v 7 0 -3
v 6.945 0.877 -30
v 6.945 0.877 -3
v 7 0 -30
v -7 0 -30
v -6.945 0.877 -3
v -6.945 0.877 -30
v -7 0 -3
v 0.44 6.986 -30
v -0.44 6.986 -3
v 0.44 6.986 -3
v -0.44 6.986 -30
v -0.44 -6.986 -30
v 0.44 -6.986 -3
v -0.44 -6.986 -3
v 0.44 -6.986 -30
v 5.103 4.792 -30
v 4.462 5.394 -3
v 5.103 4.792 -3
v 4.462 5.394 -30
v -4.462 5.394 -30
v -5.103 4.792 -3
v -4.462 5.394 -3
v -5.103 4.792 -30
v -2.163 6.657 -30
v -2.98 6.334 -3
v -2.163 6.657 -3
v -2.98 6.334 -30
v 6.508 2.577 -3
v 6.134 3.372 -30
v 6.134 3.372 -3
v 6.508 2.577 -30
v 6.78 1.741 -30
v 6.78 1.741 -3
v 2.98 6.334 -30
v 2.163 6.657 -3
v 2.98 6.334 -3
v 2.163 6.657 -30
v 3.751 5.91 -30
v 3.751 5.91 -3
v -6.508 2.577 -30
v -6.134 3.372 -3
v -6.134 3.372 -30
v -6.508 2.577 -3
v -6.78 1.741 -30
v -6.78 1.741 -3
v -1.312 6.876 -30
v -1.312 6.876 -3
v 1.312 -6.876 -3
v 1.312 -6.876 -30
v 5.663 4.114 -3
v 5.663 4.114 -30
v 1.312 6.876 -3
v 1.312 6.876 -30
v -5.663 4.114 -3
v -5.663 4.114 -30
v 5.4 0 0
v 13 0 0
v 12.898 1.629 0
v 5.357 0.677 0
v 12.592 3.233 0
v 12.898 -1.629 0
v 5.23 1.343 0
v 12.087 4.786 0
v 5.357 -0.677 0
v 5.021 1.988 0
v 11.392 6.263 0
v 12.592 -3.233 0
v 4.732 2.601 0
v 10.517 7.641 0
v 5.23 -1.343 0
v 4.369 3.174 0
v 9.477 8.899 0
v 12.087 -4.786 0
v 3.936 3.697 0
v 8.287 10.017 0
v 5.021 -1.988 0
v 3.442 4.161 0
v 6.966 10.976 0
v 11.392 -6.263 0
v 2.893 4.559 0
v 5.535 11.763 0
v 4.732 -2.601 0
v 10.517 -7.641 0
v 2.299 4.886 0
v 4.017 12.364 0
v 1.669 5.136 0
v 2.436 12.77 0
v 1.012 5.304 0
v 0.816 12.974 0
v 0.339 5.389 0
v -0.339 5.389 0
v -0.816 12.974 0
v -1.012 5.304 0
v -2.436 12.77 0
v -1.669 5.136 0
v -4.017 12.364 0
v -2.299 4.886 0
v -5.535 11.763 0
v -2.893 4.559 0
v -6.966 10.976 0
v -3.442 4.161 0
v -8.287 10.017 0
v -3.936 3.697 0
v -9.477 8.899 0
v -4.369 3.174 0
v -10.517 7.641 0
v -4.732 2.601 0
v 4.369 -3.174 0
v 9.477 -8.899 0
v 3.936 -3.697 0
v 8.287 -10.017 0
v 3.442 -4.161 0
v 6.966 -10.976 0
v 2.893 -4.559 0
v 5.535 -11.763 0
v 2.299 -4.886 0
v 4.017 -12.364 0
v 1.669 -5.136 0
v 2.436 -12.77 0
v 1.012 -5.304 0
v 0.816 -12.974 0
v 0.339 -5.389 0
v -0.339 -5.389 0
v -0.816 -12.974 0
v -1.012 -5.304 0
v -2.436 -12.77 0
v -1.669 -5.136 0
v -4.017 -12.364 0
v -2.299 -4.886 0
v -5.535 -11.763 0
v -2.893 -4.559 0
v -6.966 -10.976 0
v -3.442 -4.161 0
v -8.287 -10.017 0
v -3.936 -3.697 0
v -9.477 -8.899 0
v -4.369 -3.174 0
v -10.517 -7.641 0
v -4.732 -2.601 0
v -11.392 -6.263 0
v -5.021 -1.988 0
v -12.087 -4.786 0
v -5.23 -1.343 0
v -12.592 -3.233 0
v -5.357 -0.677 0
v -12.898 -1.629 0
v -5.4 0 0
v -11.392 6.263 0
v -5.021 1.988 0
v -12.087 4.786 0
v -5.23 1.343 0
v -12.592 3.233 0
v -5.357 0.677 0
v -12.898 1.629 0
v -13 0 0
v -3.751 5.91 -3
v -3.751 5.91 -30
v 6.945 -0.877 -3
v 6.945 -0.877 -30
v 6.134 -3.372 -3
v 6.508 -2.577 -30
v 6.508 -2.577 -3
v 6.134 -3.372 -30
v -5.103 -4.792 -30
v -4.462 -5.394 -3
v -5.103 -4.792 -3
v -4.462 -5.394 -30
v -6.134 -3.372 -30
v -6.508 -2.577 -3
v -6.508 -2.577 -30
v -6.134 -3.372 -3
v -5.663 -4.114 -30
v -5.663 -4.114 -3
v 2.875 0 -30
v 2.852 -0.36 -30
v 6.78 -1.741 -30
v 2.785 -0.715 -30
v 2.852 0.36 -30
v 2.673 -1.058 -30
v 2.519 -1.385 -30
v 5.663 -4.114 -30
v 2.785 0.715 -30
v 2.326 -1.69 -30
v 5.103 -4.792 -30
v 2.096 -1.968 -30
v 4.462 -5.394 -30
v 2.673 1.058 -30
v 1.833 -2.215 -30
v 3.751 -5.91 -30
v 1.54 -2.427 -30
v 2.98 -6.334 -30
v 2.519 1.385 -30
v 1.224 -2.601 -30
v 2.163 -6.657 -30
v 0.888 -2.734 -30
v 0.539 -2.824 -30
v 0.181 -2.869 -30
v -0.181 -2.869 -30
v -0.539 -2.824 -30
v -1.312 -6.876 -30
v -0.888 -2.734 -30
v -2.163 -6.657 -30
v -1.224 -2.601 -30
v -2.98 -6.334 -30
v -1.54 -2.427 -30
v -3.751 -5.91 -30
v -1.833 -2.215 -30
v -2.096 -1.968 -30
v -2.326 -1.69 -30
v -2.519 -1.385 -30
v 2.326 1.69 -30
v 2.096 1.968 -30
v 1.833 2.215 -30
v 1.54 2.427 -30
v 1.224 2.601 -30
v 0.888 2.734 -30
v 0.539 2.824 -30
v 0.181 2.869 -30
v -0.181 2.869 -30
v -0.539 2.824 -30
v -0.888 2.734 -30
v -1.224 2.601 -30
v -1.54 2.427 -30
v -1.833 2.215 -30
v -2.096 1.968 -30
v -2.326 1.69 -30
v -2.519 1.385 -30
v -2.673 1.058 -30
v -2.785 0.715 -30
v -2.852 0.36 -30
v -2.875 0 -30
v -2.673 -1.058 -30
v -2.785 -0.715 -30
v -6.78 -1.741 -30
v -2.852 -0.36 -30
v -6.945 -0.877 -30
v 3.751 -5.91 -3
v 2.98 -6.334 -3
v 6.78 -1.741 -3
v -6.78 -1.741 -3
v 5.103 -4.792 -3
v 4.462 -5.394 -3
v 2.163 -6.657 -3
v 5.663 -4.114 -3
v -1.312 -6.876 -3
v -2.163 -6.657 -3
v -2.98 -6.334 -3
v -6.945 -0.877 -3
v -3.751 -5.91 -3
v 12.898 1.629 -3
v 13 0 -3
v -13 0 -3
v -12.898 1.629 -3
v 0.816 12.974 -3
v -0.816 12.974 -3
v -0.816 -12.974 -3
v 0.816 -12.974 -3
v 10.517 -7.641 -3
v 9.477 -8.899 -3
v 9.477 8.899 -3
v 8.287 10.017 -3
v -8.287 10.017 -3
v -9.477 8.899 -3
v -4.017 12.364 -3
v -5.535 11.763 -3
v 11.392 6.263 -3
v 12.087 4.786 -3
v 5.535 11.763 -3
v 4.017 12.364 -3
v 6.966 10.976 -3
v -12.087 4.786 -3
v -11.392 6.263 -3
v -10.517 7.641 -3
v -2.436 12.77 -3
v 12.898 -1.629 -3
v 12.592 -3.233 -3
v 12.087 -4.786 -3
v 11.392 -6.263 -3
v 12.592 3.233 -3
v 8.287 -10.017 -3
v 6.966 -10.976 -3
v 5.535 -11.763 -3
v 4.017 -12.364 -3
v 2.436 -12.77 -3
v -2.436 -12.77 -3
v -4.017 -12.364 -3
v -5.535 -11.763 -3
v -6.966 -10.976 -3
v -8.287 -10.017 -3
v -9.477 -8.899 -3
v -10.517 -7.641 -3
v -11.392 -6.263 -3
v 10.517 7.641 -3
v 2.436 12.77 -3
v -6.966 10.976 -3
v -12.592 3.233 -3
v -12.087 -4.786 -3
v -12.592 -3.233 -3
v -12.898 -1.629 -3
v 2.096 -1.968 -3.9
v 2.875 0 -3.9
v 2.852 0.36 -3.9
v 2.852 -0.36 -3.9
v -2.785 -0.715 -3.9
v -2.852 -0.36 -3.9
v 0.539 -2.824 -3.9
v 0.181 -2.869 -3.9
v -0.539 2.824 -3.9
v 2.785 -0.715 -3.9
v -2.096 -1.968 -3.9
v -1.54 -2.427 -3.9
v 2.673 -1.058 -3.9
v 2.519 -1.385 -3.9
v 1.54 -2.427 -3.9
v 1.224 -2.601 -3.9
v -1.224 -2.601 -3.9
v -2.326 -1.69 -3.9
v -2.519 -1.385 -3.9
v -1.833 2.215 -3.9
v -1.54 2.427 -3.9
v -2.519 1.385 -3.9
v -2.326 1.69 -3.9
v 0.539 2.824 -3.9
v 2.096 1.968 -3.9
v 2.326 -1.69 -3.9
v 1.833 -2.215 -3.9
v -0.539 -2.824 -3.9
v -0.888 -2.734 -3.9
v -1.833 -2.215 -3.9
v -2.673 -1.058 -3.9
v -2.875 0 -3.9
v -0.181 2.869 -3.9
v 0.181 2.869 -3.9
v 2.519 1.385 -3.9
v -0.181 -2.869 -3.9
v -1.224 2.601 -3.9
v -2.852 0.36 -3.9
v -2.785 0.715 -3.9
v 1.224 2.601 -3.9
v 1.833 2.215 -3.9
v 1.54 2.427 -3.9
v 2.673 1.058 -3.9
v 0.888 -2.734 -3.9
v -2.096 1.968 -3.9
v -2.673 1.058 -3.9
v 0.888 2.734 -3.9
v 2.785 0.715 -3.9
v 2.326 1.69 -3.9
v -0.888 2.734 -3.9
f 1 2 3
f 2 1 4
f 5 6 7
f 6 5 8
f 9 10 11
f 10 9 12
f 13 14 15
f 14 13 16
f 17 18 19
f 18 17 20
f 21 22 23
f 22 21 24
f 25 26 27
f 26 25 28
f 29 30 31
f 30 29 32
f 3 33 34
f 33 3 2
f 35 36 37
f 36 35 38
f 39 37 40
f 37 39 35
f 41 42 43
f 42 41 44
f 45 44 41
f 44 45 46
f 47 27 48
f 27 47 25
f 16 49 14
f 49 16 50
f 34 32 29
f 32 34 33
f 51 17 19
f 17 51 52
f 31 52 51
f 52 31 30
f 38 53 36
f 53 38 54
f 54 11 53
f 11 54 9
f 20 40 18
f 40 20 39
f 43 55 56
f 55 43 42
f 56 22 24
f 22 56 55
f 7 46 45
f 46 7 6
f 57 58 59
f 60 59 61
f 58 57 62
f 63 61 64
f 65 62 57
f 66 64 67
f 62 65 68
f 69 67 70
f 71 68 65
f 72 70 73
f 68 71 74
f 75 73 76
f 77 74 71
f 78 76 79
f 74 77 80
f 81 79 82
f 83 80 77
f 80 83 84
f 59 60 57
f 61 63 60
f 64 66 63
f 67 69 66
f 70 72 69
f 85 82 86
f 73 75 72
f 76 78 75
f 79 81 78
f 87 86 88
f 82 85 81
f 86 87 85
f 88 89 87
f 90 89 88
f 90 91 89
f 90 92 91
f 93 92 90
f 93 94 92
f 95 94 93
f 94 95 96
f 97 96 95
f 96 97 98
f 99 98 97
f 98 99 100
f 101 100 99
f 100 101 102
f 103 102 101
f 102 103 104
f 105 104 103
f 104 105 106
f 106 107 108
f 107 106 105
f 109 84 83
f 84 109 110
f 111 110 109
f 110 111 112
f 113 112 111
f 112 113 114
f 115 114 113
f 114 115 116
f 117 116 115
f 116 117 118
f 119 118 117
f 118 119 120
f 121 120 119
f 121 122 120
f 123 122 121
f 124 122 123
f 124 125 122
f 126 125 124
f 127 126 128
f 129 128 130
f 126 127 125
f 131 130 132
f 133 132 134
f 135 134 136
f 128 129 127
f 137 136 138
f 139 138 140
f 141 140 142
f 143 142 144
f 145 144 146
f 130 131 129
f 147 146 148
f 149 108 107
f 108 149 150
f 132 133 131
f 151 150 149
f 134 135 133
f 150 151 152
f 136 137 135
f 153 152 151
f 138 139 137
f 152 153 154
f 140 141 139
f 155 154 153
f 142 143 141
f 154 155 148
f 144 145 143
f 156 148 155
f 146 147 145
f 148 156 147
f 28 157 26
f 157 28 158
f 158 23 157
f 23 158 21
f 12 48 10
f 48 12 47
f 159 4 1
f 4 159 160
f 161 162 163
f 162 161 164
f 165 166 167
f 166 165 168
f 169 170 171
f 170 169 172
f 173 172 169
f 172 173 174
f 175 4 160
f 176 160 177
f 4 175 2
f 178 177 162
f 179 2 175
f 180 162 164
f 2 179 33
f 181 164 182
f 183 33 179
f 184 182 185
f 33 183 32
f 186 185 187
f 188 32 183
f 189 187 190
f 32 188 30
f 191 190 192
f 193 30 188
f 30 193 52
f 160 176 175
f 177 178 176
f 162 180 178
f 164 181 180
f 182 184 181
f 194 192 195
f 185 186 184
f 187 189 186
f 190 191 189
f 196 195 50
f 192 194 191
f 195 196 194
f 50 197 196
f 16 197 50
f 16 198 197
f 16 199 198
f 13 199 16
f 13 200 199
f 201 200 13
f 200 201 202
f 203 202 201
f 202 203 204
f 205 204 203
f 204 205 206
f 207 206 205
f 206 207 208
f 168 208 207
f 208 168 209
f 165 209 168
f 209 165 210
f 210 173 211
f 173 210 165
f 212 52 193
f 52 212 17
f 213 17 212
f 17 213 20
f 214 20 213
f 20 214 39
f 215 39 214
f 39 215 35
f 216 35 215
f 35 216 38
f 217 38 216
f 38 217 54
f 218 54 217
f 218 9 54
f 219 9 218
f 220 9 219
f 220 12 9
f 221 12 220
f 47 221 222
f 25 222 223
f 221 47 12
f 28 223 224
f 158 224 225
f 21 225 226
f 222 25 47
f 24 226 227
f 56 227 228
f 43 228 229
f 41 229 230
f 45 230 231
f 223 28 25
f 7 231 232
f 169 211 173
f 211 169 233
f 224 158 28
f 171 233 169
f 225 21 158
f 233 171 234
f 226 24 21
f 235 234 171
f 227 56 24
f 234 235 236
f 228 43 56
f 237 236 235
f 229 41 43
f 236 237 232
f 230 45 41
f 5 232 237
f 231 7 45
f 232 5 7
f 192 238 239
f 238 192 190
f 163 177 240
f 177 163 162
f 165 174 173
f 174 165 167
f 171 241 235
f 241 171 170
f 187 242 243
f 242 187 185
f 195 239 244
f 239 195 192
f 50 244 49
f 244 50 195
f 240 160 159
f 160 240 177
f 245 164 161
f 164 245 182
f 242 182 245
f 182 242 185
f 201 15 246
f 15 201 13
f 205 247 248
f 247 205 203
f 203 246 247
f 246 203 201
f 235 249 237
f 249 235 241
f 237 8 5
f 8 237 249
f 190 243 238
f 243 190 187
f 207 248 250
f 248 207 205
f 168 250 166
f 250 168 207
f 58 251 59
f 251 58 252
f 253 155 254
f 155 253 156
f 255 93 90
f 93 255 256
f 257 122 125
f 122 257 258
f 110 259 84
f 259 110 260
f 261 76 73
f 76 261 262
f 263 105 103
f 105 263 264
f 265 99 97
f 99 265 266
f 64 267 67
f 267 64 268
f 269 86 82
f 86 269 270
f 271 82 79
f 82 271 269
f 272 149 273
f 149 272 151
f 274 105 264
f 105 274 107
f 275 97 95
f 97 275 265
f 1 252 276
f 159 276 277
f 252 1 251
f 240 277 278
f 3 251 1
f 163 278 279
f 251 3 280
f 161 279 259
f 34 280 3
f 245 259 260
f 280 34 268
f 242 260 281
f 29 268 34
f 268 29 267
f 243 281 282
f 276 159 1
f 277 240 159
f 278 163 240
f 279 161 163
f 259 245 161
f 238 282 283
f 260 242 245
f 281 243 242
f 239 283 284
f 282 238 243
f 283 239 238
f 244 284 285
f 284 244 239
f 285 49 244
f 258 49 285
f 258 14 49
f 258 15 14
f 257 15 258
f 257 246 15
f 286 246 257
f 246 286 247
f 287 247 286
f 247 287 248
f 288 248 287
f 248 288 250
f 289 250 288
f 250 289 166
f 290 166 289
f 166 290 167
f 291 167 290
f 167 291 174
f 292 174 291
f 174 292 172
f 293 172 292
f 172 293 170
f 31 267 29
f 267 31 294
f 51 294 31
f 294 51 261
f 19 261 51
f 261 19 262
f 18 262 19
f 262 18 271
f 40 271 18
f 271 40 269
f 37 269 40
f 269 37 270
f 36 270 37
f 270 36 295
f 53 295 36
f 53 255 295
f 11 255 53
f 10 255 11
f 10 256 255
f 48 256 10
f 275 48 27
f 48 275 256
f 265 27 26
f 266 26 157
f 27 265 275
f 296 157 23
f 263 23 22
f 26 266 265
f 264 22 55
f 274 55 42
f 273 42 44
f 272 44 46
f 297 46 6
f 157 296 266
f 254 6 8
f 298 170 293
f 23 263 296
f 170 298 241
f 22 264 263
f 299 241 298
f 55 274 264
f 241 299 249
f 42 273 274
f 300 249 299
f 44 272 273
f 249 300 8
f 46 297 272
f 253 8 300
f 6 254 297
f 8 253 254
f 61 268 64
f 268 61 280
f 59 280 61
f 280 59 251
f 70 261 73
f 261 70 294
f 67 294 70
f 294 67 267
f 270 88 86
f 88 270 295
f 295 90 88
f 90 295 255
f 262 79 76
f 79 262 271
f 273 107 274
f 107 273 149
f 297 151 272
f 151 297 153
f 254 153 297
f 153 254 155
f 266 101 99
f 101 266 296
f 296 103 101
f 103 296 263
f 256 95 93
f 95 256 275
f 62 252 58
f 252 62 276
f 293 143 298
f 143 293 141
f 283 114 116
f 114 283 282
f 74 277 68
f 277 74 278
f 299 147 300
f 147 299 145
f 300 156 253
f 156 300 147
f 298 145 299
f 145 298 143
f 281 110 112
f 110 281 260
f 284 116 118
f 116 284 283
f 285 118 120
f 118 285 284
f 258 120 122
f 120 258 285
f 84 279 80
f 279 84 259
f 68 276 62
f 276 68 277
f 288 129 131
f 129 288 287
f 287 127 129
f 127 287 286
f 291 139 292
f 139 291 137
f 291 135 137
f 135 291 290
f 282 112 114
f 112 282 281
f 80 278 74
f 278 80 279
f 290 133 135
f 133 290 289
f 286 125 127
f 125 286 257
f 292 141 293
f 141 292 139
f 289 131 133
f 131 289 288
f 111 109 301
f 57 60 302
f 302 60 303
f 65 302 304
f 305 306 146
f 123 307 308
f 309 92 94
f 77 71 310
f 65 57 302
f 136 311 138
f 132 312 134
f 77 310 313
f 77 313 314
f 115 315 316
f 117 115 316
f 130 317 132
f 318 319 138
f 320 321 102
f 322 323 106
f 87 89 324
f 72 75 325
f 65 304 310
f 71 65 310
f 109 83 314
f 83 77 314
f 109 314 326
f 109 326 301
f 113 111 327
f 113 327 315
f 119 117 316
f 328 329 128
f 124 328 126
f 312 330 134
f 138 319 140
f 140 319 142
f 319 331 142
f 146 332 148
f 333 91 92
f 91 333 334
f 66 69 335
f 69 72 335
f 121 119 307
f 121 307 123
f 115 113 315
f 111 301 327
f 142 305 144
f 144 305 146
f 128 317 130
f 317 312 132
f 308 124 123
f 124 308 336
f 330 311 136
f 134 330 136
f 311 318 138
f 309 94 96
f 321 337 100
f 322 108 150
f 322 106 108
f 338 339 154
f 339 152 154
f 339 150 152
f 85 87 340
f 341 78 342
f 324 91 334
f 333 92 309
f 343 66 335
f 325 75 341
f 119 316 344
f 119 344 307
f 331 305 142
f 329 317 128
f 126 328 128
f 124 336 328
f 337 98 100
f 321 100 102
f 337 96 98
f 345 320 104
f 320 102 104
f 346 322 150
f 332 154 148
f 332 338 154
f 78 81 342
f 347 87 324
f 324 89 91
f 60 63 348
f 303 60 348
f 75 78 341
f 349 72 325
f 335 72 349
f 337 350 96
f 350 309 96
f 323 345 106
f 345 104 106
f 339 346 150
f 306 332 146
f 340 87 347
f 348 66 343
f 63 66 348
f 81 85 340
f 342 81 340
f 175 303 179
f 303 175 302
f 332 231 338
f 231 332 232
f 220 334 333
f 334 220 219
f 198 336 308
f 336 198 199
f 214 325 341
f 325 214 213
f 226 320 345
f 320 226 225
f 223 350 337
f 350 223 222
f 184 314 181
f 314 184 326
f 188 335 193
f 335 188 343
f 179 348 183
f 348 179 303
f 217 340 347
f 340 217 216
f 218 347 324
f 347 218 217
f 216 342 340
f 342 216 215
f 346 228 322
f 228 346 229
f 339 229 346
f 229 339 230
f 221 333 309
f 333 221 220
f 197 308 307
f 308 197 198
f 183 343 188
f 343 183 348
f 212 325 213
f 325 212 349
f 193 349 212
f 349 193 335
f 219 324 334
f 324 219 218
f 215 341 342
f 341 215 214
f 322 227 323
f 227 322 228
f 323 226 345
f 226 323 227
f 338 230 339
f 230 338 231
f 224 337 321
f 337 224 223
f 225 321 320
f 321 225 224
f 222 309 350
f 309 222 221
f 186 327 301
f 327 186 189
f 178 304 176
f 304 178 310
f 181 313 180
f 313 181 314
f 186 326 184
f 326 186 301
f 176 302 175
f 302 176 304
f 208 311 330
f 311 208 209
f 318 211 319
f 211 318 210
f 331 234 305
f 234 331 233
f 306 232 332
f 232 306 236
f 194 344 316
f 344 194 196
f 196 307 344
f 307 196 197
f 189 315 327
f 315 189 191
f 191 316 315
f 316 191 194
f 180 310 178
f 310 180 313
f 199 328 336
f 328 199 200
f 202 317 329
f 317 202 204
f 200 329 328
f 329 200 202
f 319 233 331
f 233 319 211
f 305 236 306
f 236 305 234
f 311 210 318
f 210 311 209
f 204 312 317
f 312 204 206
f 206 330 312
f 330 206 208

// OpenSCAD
$fn = 50;


difference() {
	union() {
		translate(v = [0, 0, -30.0000000000]) {
			cylinder(h = 30, r = 7.0000000000);
		}
		translate(v = [0, 0, -3.0000000000]) {
			cylinder(h = 3, r = 13.0000000000);
		}
	}
	union() {
		translate(v = [0, 0, 0]) {
			rotate(a = [0, 0, 0]) {
				difference() {
					union() {
						#translate(v = [0, 0, -30.0000000000]) {
							cylinder(h = 30, r = 2.6000000000);
						}
						#translate(v = [0, 0, -3.9000000000]) {
							cylinder(h = 3.9000000000, r1 = 2.8750000000, r2 = 5.4000000000);
						}
						#translate(v = [0, 0, -30.0000000000]) {
							cylinder(h = 30, r = 2.8750000000);
						}
						#translate(v = [0, 0, -30.0000000000]) {
							cylinder(h = 30, r = 2.6000000000);
						}
					}
					union();
				}
			}
		}
	}
}
